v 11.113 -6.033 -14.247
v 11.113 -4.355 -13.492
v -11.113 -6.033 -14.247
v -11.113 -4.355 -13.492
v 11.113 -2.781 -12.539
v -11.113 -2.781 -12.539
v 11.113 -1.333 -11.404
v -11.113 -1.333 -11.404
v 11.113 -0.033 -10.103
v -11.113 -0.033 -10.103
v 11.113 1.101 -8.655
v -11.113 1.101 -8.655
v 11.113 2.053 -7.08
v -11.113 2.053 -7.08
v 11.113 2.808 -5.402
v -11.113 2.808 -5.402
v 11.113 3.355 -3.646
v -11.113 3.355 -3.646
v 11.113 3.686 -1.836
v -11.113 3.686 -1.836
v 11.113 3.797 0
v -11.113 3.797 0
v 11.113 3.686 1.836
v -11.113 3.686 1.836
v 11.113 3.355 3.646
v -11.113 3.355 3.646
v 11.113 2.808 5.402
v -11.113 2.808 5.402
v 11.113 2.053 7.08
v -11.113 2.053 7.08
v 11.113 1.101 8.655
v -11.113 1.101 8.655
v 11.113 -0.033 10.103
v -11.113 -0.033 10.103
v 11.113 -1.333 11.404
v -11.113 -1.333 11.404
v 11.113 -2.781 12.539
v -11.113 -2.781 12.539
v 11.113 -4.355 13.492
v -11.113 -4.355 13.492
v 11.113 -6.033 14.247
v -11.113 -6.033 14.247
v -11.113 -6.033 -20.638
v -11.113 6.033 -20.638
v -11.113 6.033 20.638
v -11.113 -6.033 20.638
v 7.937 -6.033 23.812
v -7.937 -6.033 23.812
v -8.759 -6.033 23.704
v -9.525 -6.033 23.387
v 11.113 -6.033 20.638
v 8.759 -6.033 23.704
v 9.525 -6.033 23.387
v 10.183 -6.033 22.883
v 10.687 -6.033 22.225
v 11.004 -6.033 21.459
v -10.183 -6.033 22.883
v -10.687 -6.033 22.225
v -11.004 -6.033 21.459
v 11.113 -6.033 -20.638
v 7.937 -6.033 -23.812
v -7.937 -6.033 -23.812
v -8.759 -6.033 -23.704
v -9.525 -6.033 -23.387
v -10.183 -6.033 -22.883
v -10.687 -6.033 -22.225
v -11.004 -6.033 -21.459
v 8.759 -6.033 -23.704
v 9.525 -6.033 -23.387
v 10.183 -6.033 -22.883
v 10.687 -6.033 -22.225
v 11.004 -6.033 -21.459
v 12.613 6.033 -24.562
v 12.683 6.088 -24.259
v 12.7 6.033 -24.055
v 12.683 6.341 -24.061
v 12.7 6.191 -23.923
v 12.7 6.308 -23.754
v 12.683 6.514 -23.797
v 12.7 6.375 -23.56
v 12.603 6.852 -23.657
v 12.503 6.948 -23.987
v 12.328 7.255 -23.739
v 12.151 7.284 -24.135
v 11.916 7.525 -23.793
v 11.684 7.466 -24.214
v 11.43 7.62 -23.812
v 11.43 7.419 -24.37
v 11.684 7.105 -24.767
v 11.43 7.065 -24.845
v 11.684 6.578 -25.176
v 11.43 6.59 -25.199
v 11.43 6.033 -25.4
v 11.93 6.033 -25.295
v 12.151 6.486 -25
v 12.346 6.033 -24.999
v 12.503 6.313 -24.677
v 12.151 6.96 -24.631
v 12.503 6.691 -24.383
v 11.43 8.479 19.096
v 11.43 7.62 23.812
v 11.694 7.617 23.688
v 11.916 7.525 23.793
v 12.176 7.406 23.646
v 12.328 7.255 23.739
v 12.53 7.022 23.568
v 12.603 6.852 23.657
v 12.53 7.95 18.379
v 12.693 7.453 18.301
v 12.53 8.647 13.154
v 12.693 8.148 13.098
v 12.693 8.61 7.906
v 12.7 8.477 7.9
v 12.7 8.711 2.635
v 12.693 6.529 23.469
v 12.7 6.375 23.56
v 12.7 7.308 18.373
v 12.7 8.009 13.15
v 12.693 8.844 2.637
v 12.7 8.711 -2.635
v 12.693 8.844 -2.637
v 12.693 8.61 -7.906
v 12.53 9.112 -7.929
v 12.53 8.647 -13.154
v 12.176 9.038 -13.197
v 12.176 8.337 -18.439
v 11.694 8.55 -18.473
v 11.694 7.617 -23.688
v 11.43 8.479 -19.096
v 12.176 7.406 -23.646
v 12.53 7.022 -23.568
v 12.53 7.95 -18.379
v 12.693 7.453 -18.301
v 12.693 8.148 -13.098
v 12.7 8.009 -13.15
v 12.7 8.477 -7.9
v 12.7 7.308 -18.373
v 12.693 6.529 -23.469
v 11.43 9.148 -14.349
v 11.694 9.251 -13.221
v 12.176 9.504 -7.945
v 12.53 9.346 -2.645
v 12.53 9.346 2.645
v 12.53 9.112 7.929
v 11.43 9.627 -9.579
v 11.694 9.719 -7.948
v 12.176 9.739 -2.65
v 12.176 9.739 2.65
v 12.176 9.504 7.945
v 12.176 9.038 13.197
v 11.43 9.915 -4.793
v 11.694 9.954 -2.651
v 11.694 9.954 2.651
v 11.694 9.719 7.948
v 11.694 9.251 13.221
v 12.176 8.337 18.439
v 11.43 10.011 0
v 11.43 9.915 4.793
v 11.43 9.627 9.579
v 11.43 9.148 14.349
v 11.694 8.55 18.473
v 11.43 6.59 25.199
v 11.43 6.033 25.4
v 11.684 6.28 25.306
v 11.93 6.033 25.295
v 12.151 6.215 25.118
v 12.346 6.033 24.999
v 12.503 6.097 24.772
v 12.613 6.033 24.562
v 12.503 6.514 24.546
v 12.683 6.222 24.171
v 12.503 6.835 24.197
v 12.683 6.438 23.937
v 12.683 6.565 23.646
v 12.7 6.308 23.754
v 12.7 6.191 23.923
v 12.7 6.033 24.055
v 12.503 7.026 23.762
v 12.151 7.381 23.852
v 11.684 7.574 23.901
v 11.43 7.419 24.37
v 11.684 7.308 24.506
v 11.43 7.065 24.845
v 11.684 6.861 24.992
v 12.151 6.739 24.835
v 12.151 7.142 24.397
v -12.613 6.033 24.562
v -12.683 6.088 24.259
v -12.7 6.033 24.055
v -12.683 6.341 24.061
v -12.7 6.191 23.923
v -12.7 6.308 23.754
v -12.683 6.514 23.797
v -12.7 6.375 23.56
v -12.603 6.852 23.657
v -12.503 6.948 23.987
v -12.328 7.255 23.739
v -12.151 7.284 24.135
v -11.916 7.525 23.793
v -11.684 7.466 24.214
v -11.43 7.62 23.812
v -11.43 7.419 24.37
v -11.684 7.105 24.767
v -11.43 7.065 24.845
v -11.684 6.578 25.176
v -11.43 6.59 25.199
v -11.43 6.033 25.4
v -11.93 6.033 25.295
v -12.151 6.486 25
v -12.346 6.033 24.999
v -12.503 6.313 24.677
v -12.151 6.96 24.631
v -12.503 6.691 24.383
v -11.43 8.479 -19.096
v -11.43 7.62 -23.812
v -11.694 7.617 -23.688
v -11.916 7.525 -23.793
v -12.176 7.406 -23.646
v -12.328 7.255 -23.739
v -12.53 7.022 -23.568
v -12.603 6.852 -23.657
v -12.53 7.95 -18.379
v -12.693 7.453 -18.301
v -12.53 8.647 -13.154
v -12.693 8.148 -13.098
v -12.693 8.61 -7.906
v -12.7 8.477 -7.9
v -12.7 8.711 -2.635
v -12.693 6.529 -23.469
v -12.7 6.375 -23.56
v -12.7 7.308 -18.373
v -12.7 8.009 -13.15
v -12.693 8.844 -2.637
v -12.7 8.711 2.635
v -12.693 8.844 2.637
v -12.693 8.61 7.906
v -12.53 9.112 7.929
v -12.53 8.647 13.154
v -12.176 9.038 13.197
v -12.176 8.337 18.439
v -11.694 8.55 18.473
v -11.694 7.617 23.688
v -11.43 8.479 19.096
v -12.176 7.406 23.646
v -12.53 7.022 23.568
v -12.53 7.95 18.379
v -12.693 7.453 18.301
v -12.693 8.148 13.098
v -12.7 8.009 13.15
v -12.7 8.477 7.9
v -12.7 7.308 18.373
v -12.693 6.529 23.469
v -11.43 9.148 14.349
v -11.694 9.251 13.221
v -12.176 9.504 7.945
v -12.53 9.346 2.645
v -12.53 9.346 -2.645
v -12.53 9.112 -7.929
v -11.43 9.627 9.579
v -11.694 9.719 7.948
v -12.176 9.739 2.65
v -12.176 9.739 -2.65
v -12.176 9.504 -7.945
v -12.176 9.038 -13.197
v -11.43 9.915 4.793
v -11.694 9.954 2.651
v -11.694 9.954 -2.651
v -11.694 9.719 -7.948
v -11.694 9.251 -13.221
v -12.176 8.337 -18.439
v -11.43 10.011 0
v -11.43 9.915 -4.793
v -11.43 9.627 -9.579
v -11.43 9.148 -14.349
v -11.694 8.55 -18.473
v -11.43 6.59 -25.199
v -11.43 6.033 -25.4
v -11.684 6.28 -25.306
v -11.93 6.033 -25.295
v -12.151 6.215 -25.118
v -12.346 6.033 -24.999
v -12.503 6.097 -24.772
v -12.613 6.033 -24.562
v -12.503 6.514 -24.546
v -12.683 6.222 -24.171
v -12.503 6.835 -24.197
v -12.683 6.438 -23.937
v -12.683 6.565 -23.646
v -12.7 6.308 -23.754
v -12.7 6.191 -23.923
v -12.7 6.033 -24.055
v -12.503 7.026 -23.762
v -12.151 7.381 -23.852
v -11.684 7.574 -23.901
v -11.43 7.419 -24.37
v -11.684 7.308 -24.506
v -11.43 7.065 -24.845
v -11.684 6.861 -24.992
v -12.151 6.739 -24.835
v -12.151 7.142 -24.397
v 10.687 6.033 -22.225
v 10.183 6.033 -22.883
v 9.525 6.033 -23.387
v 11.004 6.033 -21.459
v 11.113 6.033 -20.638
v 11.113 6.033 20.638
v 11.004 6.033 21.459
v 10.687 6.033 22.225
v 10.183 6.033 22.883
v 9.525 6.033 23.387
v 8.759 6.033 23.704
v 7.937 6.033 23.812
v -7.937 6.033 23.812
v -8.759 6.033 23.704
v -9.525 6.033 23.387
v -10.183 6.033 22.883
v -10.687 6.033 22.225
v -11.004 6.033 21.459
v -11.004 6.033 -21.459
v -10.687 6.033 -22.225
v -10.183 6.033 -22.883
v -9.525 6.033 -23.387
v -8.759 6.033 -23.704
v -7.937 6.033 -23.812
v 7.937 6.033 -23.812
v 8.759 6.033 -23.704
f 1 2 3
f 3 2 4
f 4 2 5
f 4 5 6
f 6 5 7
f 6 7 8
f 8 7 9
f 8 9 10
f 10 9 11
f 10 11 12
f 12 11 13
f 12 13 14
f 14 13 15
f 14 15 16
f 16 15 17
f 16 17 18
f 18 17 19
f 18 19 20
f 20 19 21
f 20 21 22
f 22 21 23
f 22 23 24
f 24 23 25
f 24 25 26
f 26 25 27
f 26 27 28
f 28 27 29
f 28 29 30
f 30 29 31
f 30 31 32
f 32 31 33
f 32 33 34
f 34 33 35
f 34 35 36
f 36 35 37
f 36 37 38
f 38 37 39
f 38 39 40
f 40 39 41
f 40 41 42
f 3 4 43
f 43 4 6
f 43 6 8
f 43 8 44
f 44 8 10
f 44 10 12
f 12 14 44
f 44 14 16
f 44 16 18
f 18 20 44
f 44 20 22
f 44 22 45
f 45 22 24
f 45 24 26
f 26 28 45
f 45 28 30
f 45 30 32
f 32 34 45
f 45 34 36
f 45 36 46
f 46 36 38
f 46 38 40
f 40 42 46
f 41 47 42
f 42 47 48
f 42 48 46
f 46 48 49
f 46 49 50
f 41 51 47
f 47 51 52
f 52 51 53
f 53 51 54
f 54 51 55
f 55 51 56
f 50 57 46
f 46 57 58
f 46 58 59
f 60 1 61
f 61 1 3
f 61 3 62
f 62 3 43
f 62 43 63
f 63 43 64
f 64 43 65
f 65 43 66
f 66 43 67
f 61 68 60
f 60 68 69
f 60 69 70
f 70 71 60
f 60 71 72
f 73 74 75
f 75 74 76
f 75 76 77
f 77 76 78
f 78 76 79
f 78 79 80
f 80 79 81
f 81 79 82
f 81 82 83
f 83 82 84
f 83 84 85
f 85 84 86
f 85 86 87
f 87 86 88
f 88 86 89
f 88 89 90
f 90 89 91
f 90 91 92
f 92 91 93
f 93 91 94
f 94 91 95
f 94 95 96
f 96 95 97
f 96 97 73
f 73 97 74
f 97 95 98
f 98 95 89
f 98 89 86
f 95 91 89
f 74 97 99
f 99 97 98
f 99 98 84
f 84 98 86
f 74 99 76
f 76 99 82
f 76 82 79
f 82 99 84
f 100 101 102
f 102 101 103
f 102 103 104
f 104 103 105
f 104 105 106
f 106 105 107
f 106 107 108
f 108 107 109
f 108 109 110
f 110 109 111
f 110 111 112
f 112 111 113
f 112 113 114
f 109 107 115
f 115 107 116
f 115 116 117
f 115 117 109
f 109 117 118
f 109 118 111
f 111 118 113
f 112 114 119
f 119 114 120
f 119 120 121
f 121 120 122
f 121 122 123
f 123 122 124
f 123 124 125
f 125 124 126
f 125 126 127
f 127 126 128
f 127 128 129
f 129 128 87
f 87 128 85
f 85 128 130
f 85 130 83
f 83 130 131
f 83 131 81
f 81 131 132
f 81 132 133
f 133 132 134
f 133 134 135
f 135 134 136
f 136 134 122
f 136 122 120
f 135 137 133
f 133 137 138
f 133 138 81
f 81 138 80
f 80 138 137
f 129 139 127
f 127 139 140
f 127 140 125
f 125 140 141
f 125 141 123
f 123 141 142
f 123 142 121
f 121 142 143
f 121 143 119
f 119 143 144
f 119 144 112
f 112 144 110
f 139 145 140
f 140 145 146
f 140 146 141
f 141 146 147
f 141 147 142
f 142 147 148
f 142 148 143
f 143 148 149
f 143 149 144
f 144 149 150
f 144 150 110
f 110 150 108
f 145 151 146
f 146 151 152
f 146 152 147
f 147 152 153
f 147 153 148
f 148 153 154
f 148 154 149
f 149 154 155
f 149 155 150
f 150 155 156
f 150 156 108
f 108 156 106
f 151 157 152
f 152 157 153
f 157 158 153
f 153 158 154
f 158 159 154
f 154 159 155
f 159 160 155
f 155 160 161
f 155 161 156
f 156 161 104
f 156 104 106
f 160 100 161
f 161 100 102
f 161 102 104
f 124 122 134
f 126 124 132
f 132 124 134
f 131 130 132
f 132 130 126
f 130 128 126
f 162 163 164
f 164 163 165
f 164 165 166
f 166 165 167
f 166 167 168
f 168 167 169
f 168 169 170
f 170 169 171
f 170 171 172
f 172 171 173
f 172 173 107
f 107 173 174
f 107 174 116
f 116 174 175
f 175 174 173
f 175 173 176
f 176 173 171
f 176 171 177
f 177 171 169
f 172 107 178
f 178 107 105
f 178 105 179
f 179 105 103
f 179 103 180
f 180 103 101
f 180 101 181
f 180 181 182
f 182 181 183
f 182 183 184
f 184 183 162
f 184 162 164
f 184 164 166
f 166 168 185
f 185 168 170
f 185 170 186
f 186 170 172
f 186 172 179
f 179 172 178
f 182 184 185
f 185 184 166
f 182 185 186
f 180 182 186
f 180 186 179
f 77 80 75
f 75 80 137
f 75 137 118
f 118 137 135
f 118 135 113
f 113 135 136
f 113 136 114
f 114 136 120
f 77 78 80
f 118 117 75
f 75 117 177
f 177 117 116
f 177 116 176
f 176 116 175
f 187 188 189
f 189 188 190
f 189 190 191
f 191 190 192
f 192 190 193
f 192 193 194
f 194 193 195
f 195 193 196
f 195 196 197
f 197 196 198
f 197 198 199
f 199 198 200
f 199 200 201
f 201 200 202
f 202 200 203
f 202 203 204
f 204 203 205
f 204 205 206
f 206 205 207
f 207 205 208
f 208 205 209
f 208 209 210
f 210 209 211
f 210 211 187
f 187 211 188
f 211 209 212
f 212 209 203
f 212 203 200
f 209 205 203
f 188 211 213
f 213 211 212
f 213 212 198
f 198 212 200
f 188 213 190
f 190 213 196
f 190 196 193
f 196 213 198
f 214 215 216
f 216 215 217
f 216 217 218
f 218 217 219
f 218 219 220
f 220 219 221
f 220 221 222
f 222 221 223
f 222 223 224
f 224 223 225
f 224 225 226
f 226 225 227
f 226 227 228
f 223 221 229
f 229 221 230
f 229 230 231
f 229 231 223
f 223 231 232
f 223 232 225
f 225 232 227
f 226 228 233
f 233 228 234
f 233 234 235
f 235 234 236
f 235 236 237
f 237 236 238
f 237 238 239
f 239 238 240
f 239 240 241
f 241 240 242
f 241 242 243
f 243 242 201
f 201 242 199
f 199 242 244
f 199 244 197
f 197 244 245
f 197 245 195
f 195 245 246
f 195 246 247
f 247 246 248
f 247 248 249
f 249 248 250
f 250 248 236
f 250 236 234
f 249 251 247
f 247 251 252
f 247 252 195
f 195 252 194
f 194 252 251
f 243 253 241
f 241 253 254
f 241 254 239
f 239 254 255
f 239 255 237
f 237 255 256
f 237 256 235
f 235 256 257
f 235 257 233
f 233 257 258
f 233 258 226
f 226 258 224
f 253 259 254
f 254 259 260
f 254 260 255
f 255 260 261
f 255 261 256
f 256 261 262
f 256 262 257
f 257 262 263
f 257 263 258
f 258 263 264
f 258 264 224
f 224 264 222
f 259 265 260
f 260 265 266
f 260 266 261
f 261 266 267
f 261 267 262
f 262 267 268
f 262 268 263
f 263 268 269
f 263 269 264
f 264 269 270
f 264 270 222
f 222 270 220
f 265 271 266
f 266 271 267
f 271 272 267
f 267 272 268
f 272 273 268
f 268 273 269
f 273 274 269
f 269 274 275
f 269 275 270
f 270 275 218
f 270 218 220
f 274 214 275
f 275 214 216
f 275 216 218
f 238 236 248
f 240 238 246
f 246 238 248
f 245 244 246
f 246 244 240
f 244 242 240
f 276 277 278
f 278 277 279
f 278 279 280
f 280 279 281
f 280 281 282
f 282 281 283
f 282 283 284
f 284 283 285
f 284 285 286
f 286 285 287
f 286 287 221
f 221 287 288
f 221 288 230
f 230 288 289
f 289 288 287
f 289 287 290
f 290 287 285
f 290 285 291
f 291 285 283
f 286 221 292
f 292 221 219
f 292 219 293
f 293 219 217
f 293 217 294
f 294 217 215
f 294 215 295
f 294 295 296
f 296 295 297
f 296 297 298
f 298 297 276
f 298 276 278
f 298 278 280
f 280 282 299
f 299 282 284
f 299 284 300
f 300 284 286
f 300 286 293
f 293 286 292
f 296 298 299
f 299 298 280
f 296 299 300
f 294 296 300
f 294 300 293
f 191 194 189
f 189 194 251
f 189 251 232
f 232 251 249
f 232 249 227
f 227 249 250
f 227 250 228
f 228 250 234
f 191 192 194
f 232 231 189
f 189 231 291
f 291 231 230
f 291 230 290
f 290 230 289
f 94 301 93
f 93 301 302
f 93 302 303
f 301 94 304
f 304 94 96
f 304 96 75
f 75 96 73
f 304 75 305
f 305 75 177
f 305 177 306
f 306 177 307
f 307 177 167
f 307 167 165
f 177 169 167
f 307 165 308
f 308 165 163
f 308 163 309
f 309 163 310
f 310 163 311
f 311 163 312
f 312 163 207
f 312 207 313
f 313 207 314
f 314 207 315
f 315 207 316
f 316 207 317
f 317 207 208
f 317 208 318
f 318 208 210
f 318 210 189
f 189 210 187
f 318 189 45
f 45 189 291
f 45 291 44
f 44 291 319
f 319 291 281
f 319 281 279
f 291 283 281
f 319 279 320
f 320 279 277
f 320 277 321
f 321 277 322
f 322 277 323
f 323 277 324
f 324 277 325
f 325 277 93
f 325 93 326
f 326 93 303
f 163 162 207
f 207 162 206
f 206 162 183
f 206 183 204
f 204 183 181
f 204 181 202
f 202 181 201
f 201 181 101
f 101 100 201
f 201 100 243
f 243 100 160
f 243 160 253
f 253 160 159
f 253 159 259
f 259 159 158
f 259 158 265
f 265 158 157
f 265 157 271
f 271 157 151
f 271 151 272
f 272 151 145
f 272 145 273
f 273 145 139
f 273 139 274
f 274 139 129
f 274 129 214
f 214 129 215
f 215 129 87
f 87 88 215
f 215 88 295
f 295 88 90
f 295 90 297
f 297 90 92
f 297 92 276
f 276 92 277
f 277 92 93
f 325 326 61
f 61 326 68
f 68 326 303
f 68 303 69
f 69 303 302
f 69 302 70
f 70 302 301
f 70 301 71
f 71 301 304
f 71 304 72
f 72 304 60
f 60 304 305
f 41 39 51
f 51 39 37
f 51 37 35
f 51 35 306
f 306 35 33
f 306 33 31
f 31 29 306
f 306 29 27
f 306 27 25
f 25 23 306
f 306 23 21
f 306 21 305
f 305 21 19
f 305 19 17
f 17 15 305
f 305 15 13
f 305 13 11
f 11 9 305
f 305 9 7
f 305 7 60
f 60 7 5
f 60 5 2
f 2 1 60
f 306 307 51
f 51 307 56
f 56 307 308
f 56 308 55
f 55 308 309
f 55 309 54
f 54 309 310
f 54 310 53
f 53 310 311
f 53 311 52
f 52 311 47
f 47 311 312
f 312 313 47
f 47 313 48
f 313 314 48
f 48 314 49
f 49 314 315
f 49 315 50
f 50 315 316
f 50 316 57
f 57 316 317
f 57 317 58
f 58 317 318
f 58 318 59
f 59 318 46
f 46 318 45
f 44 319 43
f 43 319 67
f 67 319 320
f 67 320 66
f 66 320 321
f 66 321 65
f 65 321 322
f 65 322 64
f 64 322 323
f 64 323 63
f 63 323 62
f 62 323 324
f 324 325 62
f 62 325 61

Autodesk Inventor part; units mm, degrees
ref_plane "YZ Plane" through (0, 0, 0) normal (1, 0, 0) x (0, 1, 0)
ref_plane "XZ Plane" through (0, 0, 0) normal (0, 1, 0) x (-1, 0, 0)
ref_plane "XY Plane" through (0, 0, 0) normal (0, 0, 1) x (1, 0, 0)
sketch "Sketch1" plane through (0, 0, 0) normal (0, 1, 0) x (-1, 0, 0)
  line L0 (-7.9375, 23.8125) -> (7.9375, 23.8125)
  line L1 (11.1125, 20.6375) -> (11.1125, -20.6375)
  line L2 (7.9375, -23.8125) -> (-7.9375, -23.8125)
  line L3 (-11.1125, -20.6375) -> (-11.1125, 20.6375)
  line L4 (-11.1125, 23.8125) -> (11.1125, -23.8125) construction
  line L5 (11.1125, 23.8125) -> (-11.1125, -23.8125) construction
  arc A0 (7.9375, -23.8125) -> (11.1125, -20.6375) centre (7.9375, -20.6375) ccw
  arc A1 (-11.1125, -20.6375) -> (-7.9375, -23.8125) centre (-7.9375, -20.6375) ccw
  arc A2 (-7.9375, 23.8125) -> (-11.1125, 20.6375) centre (-7.9375, 20.6375) ccw
  arc A3 (11.1125, 20.6375) -> (7.9375, 23.8125) centre (7.9375, 20.6375) ccw
  point P0 (0, 0)
  dimension "d0" = 47.625
  dimension "d1" = 22.225
  dimension "d15" = 3.175
extrude "Extrusion1" add sketch "Sketch1" along normal mid plane 12.065
sketch "Sketch3" plane through (0, -6.0325, -23.8125) normal (1, 0, 0) x (0, 0, -1)
  line L0 (-44.45, 12.065) -> (-3.175, 12.065) projected
  line L1 (-3.175, 0) -> (-44.45, 0) projected
  line L2 (-49.2125, 12.065) -> (1.5875, 12.065)
  arc A0 (-47.625, 13.6525) -> (-49.2125, 12.065) centre (-47.2211, 11.6611) ccw
  arc A1 (1.5875, 12.065) -> (0, 13.6525) centre (-0.4039, 11.6611) ccw
  arc A2 (0, 13.6525) -> (-47.625, 13.6525) centre (-23.8125, -103.7429) ccw
  line L3 (-3.175, 12.065) -> (-3.175, 0) projected
  line L4 (-44.45, 12.065) -> (-44.45, 0) projected
  point P0 (-23.8125, 6.0325)
  point P1 (-47.625, 12.065)
  dimension "d5" = 50.8
  dimension "d9" = 1.5875
  dimension "d13" = 2.032
  dimension "d14" = 2.032
extrude "Extrusion2" add sketch "Sketch3" along normal mid plane 25.4 contours L2 A0 A2 A1 L0
fillet "Fillet1" radius 1.27 6 edges at (-12.7, 7.0654, -24.8454) (-12.7, 7.0654, 24.8454) (-12.7, 10.0107, 0) (12.7, 7.0654, 24.8454) (12.7, 7.0654, -24.8454) (12.7, 10.0107, 0)
sketch "Sketch4" plane through (11.1125, -6.0325, 20.6375) normal (1, 0, 0) x (0, 0, -1)
  line L0 (41.275, 12.065) -> (0, 12.065) projected
  line L1 (20.6375, 12.065) -> (20.6375, -5.4102)
  circle A0 centre (20.6375, -5.4102) radius 15.24
  point P0 (20.6375, 6.0325)
  dimension "d17" = 17.4752
  dimension "d18" = 30.48
extrude "Extrusion3" cut sketch "Sketch4" against normal blind 127
properties part number "ARM_087_IntakeSideCap(WithCutout)" material "ABS Plastic"
